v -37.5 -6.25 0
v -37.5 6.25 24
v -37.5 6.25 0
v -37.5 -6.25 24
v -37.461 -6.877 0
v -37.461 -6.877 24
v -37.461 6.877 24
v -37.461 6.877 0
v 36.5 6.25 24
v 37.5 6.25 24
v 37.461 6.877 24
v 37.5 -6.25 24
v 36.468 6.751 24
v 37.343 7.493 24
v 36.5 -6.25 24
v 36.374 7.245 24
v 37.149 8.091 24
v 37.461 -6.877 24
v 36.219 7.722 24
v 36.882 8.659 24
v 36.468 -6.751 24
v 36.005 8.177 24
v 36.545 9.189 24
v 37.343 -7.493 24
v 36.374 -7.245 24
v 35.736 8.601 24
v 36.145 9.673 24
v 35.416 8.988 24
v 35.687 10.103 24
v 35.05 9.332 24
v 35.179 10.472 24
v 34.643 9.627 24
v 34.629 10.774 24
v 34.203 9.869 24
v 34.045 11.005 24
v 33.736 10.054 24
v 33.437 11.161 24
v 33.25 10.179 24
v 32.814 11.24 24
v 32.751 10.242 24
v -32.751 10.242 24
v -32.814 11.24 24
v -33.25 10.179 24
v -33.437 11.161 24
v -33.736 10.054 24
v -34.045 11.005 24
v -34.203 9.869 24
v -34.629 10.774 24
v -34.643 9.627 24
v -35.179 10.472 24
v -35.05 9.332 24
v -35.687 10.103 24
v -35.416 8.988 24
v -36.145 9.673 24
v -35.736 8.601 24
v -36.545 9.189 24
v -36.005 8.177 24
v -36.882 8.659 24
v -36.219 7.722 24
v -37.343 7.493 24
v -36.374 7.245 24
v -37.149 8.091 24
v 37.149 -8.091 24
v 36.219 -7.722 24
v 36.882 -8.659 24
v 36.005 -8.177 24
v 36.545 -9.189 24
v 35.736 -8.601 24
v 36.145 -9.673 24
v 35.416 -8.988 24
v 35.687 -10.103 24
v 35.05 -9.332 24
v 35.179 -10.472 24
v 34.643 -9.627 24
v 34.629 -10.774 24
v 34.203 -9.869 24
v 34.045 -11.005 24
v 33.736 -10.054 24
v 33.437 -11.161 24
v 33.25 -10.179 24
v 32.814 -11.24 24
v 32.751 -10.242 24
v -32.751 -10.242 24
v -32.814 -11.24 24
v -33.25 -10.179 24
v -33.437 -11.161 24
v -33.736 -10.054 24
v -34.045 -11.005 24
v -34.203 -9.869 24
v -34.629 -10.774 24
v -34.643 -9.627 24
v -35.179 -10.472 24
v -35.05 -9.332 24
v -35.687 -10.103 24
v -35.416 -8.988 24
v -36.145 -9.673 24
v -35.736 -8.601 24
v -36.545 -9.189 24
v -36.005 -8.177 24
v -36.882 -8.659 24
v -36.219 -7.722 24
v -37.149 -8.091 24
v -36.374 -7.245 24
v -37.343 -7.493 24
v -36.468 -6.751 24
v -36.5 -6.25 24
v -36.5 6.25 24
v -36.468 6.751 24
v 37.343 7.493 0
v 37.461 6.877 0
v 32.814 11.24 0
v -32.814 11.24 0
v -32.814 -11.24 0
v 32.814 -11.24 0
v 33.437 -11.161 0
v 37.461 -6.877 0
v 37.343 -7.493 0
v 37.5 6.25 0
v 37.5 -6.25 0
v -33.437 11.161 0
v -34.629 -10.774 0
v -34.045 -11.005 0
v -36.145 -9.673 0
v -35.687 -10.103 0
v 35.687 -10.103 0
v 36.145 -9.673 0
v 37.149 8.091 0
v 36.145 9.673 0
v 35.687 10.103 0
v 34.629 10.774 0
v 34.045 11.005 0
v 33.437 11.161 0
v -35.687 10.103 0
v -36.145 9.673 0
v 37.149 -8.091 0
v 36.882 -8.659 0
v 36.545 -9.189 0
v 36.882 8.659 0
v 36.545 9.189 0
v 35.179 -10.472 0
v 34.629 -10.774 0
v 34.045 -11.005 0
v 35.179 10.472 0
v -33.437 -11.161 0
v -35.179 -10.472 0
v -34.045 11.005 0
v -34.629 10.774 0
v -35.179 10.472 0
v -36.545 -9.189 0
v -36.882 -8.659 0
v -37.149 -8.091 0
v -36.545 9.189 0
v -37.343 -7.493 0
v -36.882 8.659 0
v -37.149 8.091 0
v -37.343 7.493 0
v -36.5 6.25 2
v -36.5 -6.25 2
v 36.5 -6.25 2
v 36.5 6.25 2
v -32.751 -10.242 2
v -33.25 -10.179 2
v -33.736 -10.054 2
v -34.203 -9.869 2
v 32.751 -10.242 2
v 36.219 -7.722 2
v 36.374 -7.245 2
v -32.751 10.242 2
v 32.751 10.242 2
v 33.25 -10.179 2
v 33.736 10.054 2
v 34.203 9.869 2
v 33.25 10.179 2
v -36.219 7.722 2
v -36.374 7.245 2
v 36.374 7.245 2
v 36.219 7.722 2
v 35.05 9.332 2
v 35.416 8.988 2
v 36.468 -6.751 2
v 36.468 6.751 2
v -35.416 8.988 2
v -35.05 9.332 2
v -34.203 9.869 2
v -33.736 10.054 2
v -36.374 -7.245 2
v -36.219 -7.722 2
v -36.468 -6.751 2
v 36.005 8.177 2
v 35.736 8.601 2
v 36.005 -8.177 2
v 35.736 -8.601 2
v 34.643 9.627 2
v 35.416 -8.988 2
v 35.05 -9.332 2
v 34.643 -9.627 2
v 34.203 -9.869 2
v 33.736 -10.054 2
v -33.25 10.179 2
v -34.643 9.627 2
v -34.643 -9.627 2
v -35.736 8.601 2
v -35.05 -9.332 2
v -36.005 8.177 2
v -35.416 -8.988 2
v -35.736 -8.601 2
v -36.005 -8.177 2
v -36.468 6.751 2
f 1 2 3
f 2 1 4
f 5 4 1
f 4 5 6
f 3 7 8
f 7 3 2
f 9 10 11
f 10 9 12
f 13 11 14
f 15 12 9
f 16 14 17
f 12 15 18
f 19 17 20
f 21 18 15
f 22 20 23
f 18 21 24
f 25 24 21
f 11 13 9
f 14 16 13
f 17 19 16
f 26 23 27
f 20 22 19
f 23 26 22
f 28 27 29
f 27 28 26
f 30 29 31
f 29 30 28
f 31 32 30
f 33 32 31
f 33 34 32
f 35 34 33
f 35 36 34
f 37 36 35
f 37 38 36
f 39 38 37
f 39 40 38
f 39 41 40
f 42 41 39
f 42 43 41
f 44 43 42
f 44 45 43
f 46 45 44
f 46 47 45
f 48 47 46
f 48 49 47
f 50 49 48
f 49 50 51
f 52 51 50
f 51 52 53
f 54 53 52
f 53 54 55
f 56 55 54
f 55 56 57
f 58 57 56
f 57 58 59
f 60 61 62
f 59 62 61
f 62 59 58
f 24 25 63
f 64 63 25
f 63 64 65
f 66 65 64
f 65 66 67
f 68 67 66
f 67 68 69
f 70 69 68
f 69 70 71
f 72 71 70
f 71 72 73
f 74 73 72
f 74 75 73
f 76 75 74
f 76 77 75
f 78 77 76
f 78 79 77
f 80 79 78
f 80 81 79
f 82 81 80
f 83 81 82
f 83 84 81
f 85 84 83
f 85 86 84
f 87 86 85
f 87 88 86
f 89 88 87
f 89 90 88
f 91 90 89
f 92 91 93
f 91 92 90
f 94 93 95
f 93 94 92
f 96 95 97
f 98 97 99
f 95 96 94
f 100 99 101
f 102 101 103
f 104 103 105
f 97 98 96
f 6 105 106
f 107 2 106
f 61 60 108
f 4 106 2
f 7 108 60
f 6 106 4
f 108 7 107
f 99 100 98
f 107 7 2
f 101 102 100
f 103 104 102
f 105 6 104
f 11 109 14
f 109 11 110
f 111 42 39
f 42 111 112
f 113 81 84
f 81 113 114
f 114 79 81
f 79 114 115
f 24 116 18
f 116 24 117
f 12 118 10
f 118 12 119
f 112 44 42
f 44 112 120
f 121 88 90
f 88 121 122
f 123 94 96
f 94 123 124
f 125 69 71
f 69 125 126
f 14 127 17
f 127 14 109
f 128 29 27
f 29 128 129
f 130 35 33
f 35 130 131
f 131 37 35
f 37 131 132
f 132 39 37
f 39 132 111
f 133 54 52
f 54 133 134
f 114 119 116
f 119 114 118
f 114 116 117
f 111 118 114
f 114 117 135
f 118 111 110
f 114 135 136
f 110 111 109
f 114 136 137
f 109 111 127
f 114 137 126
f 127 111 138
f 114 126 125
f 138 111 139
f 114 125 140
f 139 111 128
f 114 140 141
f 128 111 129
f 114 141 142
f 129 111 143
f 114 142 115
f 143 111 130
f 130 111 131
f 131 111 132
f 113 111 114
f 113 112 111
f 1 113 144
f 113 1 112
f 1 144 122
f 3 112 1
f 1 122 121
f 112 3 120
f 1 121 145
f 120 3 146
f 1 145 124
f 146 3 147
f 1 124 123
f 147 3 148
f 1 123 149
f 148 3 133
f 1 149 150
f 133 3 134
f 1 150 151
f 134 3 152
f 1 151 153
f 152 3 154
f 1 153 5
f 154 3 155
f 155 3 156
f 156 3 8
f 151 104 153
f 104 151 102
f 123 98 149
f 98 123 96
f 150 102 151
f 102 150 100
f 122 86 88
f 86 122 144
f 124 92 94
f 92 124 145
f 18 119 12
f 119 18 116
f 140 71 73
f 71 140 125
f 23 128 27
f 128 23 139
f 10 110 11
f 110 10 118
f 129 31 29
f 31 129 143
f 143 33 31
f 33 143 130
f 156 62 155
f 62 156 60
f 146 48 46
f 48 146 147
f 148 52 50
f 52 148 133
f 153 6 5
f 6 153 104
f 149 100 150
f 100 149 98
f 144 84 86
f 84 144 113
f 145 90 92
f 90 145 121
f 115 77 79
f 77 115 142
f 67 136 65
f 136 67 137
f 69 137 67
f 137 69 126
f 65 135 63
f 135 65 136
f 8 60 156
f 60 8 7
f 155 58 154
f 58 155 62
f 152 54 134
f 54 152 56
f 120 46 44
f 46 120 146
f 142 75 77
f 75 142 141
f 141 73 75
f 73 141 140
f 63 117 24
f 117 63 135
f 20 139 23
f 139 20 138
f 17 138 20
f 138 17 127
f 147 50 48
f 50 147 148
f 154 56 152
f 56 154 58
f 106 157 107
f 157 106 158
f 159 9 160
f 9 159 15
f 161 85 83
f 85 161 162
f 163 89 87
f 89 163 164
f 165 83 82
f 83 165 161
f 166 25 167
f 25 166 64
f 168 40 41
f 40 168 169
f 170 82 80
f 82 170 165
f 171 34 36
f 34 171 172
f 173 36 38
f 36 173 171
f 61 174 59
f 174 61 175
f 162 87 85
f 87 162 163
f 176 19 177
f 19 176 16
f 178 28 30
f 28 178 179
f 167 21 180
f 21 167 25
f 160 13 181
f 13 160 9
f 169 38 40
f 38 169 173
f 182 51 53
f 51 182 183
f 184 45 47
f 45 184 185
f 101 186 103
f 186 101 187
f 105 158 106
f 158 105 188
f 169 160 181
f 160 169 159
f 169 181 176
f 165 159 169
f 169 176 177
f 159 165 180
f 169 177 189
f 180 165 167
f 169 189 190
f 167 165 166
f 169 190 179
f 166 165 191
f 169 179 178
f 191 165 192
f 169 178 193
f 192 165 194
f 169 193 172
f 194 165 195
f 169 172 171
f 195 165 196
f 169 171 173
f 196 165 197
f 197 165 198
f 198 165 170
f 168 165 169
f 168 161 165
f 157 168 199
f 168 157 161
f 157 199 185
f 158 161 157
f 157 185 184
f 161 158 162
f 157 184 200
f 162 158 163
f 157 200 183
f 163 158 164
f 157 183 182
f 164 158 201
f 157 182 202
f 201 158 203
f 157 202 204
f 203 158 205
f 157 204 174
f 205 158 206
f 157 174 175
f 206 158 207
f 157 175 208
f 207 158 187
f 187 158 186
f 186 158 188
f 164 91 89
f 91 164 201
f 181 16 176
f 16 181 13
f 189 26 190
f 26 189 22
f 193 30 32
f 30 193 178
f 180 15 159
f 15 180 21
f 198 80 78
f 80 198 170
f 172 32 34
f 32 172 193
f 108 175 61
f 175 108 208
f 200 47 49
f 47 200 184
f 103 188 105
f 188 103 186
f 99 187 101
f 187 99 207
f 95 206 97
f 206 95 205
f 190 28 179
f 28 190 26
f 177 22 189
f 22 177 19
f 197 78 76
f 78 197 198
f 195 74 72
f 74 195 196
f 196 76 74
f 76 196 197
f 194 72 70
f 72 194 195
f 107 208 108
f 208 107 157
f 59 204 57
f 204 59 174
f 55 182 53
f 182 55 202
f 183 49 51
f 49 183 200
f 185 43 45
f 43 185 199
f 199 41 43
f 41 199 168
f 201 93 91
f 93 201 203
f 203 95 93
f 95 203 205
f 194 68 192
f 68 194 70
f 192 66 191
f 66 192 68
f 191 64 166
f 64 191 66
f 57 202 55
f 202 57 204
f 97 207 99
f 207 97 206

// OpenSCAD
$fn = 50;


difference() {
	union() {
		hull() {
			translate(v = [-32.5000000000, 6.2500000000, 0]) {
				cylinder(h = 24, r = 5);
			}
			translate(v = [32.5000000000, 6.2500000000, 0]) {
				cylinder(h = 24, r = 5);
			}
			translate(v = [-32.5000000000, -6.2500000000, 0]) {
				cylinder(h = 24, r = 5);
			}
			translate(v = [32.5000000000, -6.2500000000, 0]) {
				cylinder(h = 24, r = 5);
			}
		}
	}
	union() {
		translate(v = [0, 0, 2]) {
			hull() {
				translate(v = [-32.5000000000, 6.2500000000, 0]) {
					cylinder(h = 22, r = 4);
				}
				translate(v = [32.5000000000, 6.2500000000, 0]) {
					cylinder(h = 22, r = 4);
				}
				translate(v = [-32.5000000000, -6.2500000000, 0]) {
					cylinder(h = 22, r = 4);
				}
				translate(v = [32.5000000000, -6.2500000000, 0]) {
					cylinder(h = 22, r = 4);
				}
			}
		}
	}
}
